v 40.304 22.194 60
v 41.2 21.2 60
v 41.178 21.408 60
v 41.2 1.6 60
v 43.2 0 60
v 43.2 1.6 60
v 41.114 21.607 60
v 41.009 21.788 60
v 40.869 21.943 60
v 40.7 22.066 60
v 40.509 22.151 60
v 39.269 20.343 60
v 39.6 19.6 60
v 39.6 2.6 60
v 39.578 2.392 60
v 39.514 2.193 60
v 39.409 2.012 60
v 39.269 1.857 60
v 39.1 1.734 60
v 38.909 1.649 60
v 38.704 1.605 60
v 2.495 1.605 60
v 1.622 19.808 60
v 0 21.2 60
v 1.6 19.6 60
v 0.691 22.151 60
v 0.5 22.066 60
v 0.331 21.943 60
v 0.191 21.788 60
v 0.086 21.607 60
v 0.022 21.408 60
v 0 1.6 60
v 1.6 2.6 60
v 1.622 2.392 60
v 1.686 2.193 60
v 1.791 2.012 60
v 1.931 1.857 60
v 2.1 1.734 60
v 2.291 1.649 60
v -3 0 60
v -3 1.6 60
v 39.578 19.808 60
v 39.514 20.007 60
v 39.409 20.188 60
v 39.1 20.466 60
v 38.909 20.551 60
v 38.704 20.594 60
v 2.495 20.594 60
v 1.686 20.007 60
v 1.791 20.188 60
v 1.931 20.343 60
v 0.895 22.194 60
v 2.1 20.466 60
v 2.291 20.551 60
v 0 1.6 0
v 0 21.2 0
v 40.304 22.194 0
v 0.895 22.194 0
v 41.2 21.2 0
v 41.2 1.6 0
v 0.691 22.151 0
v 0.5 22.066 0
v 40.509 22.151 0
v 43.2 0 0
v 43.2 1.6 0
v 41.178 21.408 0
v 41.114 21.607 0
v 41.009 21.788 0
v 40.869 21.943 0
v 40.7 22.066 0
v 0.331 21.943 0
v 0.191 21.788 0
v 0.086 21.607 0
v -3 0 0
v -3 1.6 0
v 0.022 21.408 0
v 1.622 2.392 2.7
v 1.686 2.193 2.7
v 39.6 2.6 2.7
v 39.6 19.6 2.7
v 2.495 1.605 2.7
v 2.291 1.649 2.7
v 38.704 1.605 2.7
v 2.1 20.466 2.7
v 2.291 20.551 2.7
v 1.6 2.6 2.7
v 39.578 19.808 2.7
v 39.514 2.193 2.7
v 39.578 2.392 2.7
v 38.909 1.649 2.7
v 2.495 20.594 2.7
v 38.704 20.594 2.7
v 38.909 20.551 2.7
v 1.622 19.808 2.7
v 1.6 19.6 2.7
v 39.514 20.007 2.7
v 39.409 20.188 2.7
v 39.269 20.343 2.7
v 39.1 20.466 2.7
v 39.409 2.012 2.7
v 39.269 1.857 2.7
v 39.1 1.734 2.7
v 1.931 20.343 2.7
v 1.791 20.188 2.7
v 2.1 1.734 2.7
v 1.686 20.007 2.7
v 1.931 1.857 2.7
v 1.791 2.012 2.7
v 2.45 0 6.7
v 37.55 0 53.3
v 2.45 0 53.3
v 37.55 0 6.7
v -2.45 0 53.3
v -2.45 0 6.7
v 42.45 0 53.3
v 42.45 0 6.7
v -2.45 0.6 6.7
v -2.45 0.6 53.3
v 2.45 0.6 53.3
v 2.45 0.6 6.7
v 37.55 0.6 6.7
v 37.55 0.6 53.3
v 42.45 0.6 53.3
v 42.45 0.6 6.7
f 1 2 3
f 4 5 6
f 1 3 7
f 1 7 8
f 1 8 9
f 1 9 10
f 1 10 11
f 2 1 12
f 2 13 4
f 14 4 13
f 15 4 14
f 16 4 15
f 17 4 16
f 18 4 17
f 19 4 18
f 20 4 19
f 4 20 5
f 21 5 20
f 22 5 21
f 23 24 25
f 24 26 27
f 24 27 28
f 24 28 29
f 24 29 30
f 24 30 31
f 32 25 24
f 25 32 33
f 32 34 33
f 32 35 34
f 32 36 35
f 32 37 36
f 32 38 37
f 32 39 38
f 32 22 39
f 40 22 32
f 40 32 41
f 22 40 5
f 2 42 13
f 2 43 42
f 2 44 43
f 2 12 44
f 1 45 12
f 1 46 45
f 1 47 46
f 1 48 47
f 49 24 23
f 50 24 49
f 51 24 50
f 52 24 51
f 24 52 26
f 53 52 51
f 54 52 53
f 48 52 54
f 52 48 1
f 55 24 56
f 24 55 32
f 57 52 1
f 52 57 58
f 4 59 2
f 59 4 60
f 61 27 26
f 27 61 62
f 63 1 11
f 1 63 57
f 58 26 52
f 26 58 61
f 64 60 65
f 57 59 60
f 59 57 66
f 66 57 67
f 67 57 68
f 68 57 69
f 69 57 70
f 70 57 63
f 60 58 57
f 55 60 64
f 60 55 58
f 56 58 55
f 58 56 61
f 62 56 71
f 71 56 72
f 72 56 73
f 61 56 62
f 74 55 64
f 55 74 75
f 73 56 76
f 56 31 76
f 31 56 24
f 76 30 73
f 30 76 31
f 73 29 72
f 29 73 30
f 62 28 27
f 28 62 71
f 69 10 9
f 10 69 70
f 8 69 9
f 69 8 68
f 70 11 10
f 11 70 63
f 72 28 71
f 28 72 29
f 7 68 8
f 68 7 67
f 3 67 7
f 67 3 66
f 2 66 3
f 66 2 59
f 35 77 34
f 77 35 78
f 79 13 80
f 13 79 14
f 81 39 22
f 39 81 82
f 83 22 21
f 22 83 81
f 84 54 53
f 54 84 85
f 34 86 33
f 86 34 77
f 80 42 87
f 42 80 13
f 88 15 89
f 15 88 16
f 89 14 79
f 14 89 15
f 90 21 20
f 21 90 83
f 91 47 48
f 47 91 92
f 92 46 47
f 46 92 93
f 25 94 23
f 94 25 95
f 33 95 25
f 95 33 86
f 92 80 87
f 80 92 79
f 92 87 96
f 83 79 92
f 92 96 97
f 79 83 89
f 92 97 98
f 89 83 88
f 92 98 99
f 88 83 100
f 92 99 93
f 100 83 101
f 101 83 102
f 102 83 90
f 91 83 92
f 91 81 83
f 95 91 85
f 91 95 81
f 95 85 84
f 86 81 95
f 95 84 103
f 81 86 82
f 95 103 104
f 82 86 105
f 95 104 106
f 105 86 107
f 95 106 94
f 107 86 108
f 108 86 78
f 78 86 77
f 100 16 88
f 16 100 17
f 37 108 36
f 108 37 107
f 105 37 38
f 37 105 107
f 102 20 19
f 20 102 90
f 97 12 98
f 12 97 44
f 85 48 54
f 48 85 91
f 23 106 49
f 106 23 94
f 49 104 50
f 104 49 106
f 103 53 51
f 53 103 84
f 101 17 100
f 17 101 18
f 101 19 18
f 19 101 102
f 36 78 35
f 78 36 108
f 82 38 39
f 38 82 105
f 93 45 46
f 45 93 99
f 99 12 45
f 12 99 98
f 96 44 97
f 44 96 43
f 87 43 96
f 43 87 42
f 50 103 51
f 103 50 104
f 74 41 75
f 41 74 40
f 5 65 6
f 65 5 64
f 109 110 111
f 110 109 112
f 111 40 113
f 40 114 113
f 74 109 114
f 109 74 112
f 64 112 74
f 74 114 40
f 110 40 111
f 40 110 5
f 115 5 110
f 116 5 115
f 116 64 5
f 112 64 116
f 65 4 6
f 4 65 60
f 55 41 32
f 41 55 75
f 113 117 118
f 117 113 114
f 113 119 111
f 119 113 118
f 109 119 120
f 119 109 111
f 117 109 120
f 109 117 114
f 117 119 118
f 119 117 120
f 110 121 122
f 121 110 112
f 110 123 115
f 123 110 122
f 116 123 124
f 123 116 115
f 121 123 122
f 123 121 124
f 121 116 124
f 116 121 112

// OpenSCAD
// file: IKEA Skadis v2 hook cutouts.scad
skadis_hook_width = 4.5;
skadis_hook_height = 46;
skadis_hole_spacing_width = 40; // middle to middle
cutout_tolerance_w = 0.4;
cutout_tolerance_h = 0.6;


module skadis_hook_cutout(center=false, hook_count=2) {
    
    if(center) {
        translate([-(skadis_hole_spacing_width + skadis_hook_width) / 2, 0, - skadis_hook_height / 2])
        object(hook_count);
    } else {
        object();
    }
    

}

module object(hook_count=2) {
    union() {

        // Cutout for the hook 1
        color("red")
        translate([- cutout_tolerance_w / 2, 0, - cutout_tolerance_h / 2])
        cube([skadis_hook_width + cutout_tolerance_w, 2, skadis_hook_height + cutout_tolerance_h]);

        // Cutout for the hook 2
        color("red")
        translate([- cutout_tolerance_w / 2 + skadis_hole_spacing_width, 0, - cutout_tolerance_h / 2])
        cube([skadis_hook_width + cutout_tolerance_w, 2, skadis_hook_height + cutout_tolerance_h]);

    }
}

skadis_hook_cutout(center = false);
// file: ../modules/roundedcube.scad
// More information: https://danielupshaw.com/openscad-rounded-corners/


// Examples
// color("Yellow")
// roundedcube(3, true, 0.7, "xmin");

// translate(v = [1, 0, 2])
// color("Pink")
// roundedcube([4, 2, 2], false, 0.6, "zmax");

// translate(v = [-4, -1, 2])
// color("Lightblue")
// roundedcube(2, false);

// translate(v = [0, 0, 6])
// color("Orange")
// roundedcube([3, 2, 2], true, 0.2);

// translate(v = [2.5, -0.5, 5])
// color("Green")
// roundedcube([3, 2, 2], false, 0.4, "z");

// Set to 0.01 for higher definition curves (renders slower)
$fs = 0.15;

module roundedcube(size = [1, 1, 1], center = false, radius = 0.5, apply_to = "all") {
	// If single value, convert to [x, y, z] vector
	size = (size[0] == undef) ? [size, size, size] : size;

	translate_min = radius;
	translate_xmax = size[0] - radius;
	translate_ymax = size[1] - radius;
	translate_zmax = size[2] - radius;

	diameter = radius * 2;

	obj_translate = (center == false) ?
		[0, 0, 0] : [
			-(size[0] / 2),
			-(size[1] / 2),
			-(size[2] / 2)
		];

	translate(v = obj_translate) {
		hull() {
			for (translate_x = [translate_min, translate_xmax]) {
				x_at = (translate_x == translate_min) ? "min" : "max";
				for (translate_y = [translate_min, translate_ymax]) {
					y_at = (translate_y == translate_min) ? "min" : "max";
					for (translate_z = [translate_min, translate_zmax]) {
						z_at = (translate_z == translate_min) ? "min" : "max";

						translate(v = [translate_x, translate_y, translate_z])
						if (
							(apply_to == "all") ||
							(apply_to == "xmin" && x_at == "min") || (apply_to == "xmax" && x_at == "max") ||
							(apply_to == "ymin" && y_at == "min") || (apply_to == "ymax" && y_at == "max") ||
							(apply_to == "zmin" && z_at == "min") || (apply_to == "zmax" && z_at == "max")
						) {
							sphere(r = radius);
						} else {
							rotate = 
								(apply_to == "xmin" || apply_to == "xmax" || apply_to == "x") ? [0, 90, 0] : (
								(apply_to == "ymin" || apply_to == "ymax" || apply_to == "y") ? [90, 90, 0] :
								[0, 0, 0]
							);
							rotate(a = rotate)
							cylinder(h = diameter, r = radius, center = true);
						}
					}
				}
			}
		}
	}
}
// file: IKEA Skadis v2 Bin.scad
_width = 37 + 1.6 + 1.6;
_depth = 18 + 1.6 + 1.6;
_height = 60;
_thickness = 1.6;  //Recommended minimum 1.6

//use <./IKEA Skadis include backwall with 3 hooks.scad>
use <../modules/roundedcube.scad>
use <./IKEA Skadis v2 hook cutouts.scad>



module bin(_w, _d, _h, _t, _r) {

    difference() {
        translate([0, _d / 2, 0])
        difference() {
            roundedcube(size = [_w, _d, _h], center = true, radius = _r, apply_to = "z");
            color("red")
            translate([0, 0, _t])
            roundedcube(size = [_w - _t * 2, _d - _t * 2, _h - _t * 2 + 1], center = true, radius = _r, apply_to = "z");
        }
        color("green")
        translate([0, -1.4, 0])
        skadis_hook_cutout(center=true, 3);
    }
}

bin(_width, _depth, _height, _thickness);
// main file
_width = 38 + 1.6 + 1.6;
_depth = 19 + 1.6 + 1.6;
_height = 60;
_thickness = 1.6; //Recommended minimum 1.6

_bottom_cutout = 0;
_bottom_cutout_width = 103;
_bottom_cutout_depth = 20;

_right_cutout = 0;
_right_cutout_depth = 13;
_right_cutout_height = 20;
_right_cutout_z_offset = 30; // (_height - _left_cutout_height) / 2
_right_cutout_y_offset = 20; // (_depth - _left_cutout_depth) / 2

_left_cutout = 0;
_left_cutout_depth = 13; //16
_left_cutout_height = 20;
_left_cutout_z_offset = 30; // (_height - _right_cutout_height) / 2
_left_cutout_y_offset = 20; // (_depth - _left_cutout_depth) / 2

_front_cutout = 0;
_front_cutout_width = 50;
_front_cutout_height = 40;
_front_cutout_z_offset = 10; // Middle = (_height - _front_cutout_height) / 2;

use <./IKEA Skadis v2 Bin.scad>
use <../modules/roundedcube.scad>
use <./IKEA Skadis v2 hook cutouts.scad>

difference() {
    union() {
        translate([_width / 2, 0, _height / 2])
        bin(_width, _depth, _height, _thickness, 1);

        color("gray")
        translate([-3, 0, 0])
        cube([_width + 5, _thickness, _height]);
    }

    color("green")
    translate([20, -1.4, 30])
    skadis_hook_cutout(center=true, 3);

    // Bottom cutout
    if(_bottom_cutout == 1) {
        translate([(_width - _bottom_cutout_width) / 2, (_depth - _bottom_cutout_depth) / 2, -1])
        //cube([_bottom_cutout_width, _bottom_cutout_depth, _thickness + 2]);
        roundedcube(size = [_bottom_cutout_width, _bottom_cutout_depth, _thickness + 2], center = false, radius = 5, apply_to = "z");
    }

    // Right cutout
    if(_right_cutout == 1) {
        translate([_width - _thickness - 1, _depth - _right_cutout_depth - _right_cutout_y_offset, _left_cutout_z_offset])
        roundedcube(size = [_thickness + 2, _right_cutout_depth, _right_cutout_height], center = false, radius = 2.5, apply_to = "x");
    }

    // Left cutout
    if(_left_cutout == 1) {
        translate([- 1, _depth - _left_cutout_depth - _left_cutout_y_offset, _left_cutout_z_offset])
        roundedcube(size = [_thickness + 2, _left_cutout_depth, _left_cutout_height], center = false, radius = 2.5, apply_to = "x");
    }

    // Front cutout
    if(_front_cutout == 1) {
        color("red")
        translate([(_width - _front_cutout_width) / 2, _depth -1, _front_cutout_z_offset])
        //cube([_bottom_cutout_width, _bottom_cutout_depth, _thickness + 2]);
        roundedcube(size = [_front_cutout_width, _thickness, _front_cutout_height], center = false, radius = 5, apply_to = "y");
    }
}



// color("gray")
// translate([2, 2, 0])
// cube([37, 18, 250]);
